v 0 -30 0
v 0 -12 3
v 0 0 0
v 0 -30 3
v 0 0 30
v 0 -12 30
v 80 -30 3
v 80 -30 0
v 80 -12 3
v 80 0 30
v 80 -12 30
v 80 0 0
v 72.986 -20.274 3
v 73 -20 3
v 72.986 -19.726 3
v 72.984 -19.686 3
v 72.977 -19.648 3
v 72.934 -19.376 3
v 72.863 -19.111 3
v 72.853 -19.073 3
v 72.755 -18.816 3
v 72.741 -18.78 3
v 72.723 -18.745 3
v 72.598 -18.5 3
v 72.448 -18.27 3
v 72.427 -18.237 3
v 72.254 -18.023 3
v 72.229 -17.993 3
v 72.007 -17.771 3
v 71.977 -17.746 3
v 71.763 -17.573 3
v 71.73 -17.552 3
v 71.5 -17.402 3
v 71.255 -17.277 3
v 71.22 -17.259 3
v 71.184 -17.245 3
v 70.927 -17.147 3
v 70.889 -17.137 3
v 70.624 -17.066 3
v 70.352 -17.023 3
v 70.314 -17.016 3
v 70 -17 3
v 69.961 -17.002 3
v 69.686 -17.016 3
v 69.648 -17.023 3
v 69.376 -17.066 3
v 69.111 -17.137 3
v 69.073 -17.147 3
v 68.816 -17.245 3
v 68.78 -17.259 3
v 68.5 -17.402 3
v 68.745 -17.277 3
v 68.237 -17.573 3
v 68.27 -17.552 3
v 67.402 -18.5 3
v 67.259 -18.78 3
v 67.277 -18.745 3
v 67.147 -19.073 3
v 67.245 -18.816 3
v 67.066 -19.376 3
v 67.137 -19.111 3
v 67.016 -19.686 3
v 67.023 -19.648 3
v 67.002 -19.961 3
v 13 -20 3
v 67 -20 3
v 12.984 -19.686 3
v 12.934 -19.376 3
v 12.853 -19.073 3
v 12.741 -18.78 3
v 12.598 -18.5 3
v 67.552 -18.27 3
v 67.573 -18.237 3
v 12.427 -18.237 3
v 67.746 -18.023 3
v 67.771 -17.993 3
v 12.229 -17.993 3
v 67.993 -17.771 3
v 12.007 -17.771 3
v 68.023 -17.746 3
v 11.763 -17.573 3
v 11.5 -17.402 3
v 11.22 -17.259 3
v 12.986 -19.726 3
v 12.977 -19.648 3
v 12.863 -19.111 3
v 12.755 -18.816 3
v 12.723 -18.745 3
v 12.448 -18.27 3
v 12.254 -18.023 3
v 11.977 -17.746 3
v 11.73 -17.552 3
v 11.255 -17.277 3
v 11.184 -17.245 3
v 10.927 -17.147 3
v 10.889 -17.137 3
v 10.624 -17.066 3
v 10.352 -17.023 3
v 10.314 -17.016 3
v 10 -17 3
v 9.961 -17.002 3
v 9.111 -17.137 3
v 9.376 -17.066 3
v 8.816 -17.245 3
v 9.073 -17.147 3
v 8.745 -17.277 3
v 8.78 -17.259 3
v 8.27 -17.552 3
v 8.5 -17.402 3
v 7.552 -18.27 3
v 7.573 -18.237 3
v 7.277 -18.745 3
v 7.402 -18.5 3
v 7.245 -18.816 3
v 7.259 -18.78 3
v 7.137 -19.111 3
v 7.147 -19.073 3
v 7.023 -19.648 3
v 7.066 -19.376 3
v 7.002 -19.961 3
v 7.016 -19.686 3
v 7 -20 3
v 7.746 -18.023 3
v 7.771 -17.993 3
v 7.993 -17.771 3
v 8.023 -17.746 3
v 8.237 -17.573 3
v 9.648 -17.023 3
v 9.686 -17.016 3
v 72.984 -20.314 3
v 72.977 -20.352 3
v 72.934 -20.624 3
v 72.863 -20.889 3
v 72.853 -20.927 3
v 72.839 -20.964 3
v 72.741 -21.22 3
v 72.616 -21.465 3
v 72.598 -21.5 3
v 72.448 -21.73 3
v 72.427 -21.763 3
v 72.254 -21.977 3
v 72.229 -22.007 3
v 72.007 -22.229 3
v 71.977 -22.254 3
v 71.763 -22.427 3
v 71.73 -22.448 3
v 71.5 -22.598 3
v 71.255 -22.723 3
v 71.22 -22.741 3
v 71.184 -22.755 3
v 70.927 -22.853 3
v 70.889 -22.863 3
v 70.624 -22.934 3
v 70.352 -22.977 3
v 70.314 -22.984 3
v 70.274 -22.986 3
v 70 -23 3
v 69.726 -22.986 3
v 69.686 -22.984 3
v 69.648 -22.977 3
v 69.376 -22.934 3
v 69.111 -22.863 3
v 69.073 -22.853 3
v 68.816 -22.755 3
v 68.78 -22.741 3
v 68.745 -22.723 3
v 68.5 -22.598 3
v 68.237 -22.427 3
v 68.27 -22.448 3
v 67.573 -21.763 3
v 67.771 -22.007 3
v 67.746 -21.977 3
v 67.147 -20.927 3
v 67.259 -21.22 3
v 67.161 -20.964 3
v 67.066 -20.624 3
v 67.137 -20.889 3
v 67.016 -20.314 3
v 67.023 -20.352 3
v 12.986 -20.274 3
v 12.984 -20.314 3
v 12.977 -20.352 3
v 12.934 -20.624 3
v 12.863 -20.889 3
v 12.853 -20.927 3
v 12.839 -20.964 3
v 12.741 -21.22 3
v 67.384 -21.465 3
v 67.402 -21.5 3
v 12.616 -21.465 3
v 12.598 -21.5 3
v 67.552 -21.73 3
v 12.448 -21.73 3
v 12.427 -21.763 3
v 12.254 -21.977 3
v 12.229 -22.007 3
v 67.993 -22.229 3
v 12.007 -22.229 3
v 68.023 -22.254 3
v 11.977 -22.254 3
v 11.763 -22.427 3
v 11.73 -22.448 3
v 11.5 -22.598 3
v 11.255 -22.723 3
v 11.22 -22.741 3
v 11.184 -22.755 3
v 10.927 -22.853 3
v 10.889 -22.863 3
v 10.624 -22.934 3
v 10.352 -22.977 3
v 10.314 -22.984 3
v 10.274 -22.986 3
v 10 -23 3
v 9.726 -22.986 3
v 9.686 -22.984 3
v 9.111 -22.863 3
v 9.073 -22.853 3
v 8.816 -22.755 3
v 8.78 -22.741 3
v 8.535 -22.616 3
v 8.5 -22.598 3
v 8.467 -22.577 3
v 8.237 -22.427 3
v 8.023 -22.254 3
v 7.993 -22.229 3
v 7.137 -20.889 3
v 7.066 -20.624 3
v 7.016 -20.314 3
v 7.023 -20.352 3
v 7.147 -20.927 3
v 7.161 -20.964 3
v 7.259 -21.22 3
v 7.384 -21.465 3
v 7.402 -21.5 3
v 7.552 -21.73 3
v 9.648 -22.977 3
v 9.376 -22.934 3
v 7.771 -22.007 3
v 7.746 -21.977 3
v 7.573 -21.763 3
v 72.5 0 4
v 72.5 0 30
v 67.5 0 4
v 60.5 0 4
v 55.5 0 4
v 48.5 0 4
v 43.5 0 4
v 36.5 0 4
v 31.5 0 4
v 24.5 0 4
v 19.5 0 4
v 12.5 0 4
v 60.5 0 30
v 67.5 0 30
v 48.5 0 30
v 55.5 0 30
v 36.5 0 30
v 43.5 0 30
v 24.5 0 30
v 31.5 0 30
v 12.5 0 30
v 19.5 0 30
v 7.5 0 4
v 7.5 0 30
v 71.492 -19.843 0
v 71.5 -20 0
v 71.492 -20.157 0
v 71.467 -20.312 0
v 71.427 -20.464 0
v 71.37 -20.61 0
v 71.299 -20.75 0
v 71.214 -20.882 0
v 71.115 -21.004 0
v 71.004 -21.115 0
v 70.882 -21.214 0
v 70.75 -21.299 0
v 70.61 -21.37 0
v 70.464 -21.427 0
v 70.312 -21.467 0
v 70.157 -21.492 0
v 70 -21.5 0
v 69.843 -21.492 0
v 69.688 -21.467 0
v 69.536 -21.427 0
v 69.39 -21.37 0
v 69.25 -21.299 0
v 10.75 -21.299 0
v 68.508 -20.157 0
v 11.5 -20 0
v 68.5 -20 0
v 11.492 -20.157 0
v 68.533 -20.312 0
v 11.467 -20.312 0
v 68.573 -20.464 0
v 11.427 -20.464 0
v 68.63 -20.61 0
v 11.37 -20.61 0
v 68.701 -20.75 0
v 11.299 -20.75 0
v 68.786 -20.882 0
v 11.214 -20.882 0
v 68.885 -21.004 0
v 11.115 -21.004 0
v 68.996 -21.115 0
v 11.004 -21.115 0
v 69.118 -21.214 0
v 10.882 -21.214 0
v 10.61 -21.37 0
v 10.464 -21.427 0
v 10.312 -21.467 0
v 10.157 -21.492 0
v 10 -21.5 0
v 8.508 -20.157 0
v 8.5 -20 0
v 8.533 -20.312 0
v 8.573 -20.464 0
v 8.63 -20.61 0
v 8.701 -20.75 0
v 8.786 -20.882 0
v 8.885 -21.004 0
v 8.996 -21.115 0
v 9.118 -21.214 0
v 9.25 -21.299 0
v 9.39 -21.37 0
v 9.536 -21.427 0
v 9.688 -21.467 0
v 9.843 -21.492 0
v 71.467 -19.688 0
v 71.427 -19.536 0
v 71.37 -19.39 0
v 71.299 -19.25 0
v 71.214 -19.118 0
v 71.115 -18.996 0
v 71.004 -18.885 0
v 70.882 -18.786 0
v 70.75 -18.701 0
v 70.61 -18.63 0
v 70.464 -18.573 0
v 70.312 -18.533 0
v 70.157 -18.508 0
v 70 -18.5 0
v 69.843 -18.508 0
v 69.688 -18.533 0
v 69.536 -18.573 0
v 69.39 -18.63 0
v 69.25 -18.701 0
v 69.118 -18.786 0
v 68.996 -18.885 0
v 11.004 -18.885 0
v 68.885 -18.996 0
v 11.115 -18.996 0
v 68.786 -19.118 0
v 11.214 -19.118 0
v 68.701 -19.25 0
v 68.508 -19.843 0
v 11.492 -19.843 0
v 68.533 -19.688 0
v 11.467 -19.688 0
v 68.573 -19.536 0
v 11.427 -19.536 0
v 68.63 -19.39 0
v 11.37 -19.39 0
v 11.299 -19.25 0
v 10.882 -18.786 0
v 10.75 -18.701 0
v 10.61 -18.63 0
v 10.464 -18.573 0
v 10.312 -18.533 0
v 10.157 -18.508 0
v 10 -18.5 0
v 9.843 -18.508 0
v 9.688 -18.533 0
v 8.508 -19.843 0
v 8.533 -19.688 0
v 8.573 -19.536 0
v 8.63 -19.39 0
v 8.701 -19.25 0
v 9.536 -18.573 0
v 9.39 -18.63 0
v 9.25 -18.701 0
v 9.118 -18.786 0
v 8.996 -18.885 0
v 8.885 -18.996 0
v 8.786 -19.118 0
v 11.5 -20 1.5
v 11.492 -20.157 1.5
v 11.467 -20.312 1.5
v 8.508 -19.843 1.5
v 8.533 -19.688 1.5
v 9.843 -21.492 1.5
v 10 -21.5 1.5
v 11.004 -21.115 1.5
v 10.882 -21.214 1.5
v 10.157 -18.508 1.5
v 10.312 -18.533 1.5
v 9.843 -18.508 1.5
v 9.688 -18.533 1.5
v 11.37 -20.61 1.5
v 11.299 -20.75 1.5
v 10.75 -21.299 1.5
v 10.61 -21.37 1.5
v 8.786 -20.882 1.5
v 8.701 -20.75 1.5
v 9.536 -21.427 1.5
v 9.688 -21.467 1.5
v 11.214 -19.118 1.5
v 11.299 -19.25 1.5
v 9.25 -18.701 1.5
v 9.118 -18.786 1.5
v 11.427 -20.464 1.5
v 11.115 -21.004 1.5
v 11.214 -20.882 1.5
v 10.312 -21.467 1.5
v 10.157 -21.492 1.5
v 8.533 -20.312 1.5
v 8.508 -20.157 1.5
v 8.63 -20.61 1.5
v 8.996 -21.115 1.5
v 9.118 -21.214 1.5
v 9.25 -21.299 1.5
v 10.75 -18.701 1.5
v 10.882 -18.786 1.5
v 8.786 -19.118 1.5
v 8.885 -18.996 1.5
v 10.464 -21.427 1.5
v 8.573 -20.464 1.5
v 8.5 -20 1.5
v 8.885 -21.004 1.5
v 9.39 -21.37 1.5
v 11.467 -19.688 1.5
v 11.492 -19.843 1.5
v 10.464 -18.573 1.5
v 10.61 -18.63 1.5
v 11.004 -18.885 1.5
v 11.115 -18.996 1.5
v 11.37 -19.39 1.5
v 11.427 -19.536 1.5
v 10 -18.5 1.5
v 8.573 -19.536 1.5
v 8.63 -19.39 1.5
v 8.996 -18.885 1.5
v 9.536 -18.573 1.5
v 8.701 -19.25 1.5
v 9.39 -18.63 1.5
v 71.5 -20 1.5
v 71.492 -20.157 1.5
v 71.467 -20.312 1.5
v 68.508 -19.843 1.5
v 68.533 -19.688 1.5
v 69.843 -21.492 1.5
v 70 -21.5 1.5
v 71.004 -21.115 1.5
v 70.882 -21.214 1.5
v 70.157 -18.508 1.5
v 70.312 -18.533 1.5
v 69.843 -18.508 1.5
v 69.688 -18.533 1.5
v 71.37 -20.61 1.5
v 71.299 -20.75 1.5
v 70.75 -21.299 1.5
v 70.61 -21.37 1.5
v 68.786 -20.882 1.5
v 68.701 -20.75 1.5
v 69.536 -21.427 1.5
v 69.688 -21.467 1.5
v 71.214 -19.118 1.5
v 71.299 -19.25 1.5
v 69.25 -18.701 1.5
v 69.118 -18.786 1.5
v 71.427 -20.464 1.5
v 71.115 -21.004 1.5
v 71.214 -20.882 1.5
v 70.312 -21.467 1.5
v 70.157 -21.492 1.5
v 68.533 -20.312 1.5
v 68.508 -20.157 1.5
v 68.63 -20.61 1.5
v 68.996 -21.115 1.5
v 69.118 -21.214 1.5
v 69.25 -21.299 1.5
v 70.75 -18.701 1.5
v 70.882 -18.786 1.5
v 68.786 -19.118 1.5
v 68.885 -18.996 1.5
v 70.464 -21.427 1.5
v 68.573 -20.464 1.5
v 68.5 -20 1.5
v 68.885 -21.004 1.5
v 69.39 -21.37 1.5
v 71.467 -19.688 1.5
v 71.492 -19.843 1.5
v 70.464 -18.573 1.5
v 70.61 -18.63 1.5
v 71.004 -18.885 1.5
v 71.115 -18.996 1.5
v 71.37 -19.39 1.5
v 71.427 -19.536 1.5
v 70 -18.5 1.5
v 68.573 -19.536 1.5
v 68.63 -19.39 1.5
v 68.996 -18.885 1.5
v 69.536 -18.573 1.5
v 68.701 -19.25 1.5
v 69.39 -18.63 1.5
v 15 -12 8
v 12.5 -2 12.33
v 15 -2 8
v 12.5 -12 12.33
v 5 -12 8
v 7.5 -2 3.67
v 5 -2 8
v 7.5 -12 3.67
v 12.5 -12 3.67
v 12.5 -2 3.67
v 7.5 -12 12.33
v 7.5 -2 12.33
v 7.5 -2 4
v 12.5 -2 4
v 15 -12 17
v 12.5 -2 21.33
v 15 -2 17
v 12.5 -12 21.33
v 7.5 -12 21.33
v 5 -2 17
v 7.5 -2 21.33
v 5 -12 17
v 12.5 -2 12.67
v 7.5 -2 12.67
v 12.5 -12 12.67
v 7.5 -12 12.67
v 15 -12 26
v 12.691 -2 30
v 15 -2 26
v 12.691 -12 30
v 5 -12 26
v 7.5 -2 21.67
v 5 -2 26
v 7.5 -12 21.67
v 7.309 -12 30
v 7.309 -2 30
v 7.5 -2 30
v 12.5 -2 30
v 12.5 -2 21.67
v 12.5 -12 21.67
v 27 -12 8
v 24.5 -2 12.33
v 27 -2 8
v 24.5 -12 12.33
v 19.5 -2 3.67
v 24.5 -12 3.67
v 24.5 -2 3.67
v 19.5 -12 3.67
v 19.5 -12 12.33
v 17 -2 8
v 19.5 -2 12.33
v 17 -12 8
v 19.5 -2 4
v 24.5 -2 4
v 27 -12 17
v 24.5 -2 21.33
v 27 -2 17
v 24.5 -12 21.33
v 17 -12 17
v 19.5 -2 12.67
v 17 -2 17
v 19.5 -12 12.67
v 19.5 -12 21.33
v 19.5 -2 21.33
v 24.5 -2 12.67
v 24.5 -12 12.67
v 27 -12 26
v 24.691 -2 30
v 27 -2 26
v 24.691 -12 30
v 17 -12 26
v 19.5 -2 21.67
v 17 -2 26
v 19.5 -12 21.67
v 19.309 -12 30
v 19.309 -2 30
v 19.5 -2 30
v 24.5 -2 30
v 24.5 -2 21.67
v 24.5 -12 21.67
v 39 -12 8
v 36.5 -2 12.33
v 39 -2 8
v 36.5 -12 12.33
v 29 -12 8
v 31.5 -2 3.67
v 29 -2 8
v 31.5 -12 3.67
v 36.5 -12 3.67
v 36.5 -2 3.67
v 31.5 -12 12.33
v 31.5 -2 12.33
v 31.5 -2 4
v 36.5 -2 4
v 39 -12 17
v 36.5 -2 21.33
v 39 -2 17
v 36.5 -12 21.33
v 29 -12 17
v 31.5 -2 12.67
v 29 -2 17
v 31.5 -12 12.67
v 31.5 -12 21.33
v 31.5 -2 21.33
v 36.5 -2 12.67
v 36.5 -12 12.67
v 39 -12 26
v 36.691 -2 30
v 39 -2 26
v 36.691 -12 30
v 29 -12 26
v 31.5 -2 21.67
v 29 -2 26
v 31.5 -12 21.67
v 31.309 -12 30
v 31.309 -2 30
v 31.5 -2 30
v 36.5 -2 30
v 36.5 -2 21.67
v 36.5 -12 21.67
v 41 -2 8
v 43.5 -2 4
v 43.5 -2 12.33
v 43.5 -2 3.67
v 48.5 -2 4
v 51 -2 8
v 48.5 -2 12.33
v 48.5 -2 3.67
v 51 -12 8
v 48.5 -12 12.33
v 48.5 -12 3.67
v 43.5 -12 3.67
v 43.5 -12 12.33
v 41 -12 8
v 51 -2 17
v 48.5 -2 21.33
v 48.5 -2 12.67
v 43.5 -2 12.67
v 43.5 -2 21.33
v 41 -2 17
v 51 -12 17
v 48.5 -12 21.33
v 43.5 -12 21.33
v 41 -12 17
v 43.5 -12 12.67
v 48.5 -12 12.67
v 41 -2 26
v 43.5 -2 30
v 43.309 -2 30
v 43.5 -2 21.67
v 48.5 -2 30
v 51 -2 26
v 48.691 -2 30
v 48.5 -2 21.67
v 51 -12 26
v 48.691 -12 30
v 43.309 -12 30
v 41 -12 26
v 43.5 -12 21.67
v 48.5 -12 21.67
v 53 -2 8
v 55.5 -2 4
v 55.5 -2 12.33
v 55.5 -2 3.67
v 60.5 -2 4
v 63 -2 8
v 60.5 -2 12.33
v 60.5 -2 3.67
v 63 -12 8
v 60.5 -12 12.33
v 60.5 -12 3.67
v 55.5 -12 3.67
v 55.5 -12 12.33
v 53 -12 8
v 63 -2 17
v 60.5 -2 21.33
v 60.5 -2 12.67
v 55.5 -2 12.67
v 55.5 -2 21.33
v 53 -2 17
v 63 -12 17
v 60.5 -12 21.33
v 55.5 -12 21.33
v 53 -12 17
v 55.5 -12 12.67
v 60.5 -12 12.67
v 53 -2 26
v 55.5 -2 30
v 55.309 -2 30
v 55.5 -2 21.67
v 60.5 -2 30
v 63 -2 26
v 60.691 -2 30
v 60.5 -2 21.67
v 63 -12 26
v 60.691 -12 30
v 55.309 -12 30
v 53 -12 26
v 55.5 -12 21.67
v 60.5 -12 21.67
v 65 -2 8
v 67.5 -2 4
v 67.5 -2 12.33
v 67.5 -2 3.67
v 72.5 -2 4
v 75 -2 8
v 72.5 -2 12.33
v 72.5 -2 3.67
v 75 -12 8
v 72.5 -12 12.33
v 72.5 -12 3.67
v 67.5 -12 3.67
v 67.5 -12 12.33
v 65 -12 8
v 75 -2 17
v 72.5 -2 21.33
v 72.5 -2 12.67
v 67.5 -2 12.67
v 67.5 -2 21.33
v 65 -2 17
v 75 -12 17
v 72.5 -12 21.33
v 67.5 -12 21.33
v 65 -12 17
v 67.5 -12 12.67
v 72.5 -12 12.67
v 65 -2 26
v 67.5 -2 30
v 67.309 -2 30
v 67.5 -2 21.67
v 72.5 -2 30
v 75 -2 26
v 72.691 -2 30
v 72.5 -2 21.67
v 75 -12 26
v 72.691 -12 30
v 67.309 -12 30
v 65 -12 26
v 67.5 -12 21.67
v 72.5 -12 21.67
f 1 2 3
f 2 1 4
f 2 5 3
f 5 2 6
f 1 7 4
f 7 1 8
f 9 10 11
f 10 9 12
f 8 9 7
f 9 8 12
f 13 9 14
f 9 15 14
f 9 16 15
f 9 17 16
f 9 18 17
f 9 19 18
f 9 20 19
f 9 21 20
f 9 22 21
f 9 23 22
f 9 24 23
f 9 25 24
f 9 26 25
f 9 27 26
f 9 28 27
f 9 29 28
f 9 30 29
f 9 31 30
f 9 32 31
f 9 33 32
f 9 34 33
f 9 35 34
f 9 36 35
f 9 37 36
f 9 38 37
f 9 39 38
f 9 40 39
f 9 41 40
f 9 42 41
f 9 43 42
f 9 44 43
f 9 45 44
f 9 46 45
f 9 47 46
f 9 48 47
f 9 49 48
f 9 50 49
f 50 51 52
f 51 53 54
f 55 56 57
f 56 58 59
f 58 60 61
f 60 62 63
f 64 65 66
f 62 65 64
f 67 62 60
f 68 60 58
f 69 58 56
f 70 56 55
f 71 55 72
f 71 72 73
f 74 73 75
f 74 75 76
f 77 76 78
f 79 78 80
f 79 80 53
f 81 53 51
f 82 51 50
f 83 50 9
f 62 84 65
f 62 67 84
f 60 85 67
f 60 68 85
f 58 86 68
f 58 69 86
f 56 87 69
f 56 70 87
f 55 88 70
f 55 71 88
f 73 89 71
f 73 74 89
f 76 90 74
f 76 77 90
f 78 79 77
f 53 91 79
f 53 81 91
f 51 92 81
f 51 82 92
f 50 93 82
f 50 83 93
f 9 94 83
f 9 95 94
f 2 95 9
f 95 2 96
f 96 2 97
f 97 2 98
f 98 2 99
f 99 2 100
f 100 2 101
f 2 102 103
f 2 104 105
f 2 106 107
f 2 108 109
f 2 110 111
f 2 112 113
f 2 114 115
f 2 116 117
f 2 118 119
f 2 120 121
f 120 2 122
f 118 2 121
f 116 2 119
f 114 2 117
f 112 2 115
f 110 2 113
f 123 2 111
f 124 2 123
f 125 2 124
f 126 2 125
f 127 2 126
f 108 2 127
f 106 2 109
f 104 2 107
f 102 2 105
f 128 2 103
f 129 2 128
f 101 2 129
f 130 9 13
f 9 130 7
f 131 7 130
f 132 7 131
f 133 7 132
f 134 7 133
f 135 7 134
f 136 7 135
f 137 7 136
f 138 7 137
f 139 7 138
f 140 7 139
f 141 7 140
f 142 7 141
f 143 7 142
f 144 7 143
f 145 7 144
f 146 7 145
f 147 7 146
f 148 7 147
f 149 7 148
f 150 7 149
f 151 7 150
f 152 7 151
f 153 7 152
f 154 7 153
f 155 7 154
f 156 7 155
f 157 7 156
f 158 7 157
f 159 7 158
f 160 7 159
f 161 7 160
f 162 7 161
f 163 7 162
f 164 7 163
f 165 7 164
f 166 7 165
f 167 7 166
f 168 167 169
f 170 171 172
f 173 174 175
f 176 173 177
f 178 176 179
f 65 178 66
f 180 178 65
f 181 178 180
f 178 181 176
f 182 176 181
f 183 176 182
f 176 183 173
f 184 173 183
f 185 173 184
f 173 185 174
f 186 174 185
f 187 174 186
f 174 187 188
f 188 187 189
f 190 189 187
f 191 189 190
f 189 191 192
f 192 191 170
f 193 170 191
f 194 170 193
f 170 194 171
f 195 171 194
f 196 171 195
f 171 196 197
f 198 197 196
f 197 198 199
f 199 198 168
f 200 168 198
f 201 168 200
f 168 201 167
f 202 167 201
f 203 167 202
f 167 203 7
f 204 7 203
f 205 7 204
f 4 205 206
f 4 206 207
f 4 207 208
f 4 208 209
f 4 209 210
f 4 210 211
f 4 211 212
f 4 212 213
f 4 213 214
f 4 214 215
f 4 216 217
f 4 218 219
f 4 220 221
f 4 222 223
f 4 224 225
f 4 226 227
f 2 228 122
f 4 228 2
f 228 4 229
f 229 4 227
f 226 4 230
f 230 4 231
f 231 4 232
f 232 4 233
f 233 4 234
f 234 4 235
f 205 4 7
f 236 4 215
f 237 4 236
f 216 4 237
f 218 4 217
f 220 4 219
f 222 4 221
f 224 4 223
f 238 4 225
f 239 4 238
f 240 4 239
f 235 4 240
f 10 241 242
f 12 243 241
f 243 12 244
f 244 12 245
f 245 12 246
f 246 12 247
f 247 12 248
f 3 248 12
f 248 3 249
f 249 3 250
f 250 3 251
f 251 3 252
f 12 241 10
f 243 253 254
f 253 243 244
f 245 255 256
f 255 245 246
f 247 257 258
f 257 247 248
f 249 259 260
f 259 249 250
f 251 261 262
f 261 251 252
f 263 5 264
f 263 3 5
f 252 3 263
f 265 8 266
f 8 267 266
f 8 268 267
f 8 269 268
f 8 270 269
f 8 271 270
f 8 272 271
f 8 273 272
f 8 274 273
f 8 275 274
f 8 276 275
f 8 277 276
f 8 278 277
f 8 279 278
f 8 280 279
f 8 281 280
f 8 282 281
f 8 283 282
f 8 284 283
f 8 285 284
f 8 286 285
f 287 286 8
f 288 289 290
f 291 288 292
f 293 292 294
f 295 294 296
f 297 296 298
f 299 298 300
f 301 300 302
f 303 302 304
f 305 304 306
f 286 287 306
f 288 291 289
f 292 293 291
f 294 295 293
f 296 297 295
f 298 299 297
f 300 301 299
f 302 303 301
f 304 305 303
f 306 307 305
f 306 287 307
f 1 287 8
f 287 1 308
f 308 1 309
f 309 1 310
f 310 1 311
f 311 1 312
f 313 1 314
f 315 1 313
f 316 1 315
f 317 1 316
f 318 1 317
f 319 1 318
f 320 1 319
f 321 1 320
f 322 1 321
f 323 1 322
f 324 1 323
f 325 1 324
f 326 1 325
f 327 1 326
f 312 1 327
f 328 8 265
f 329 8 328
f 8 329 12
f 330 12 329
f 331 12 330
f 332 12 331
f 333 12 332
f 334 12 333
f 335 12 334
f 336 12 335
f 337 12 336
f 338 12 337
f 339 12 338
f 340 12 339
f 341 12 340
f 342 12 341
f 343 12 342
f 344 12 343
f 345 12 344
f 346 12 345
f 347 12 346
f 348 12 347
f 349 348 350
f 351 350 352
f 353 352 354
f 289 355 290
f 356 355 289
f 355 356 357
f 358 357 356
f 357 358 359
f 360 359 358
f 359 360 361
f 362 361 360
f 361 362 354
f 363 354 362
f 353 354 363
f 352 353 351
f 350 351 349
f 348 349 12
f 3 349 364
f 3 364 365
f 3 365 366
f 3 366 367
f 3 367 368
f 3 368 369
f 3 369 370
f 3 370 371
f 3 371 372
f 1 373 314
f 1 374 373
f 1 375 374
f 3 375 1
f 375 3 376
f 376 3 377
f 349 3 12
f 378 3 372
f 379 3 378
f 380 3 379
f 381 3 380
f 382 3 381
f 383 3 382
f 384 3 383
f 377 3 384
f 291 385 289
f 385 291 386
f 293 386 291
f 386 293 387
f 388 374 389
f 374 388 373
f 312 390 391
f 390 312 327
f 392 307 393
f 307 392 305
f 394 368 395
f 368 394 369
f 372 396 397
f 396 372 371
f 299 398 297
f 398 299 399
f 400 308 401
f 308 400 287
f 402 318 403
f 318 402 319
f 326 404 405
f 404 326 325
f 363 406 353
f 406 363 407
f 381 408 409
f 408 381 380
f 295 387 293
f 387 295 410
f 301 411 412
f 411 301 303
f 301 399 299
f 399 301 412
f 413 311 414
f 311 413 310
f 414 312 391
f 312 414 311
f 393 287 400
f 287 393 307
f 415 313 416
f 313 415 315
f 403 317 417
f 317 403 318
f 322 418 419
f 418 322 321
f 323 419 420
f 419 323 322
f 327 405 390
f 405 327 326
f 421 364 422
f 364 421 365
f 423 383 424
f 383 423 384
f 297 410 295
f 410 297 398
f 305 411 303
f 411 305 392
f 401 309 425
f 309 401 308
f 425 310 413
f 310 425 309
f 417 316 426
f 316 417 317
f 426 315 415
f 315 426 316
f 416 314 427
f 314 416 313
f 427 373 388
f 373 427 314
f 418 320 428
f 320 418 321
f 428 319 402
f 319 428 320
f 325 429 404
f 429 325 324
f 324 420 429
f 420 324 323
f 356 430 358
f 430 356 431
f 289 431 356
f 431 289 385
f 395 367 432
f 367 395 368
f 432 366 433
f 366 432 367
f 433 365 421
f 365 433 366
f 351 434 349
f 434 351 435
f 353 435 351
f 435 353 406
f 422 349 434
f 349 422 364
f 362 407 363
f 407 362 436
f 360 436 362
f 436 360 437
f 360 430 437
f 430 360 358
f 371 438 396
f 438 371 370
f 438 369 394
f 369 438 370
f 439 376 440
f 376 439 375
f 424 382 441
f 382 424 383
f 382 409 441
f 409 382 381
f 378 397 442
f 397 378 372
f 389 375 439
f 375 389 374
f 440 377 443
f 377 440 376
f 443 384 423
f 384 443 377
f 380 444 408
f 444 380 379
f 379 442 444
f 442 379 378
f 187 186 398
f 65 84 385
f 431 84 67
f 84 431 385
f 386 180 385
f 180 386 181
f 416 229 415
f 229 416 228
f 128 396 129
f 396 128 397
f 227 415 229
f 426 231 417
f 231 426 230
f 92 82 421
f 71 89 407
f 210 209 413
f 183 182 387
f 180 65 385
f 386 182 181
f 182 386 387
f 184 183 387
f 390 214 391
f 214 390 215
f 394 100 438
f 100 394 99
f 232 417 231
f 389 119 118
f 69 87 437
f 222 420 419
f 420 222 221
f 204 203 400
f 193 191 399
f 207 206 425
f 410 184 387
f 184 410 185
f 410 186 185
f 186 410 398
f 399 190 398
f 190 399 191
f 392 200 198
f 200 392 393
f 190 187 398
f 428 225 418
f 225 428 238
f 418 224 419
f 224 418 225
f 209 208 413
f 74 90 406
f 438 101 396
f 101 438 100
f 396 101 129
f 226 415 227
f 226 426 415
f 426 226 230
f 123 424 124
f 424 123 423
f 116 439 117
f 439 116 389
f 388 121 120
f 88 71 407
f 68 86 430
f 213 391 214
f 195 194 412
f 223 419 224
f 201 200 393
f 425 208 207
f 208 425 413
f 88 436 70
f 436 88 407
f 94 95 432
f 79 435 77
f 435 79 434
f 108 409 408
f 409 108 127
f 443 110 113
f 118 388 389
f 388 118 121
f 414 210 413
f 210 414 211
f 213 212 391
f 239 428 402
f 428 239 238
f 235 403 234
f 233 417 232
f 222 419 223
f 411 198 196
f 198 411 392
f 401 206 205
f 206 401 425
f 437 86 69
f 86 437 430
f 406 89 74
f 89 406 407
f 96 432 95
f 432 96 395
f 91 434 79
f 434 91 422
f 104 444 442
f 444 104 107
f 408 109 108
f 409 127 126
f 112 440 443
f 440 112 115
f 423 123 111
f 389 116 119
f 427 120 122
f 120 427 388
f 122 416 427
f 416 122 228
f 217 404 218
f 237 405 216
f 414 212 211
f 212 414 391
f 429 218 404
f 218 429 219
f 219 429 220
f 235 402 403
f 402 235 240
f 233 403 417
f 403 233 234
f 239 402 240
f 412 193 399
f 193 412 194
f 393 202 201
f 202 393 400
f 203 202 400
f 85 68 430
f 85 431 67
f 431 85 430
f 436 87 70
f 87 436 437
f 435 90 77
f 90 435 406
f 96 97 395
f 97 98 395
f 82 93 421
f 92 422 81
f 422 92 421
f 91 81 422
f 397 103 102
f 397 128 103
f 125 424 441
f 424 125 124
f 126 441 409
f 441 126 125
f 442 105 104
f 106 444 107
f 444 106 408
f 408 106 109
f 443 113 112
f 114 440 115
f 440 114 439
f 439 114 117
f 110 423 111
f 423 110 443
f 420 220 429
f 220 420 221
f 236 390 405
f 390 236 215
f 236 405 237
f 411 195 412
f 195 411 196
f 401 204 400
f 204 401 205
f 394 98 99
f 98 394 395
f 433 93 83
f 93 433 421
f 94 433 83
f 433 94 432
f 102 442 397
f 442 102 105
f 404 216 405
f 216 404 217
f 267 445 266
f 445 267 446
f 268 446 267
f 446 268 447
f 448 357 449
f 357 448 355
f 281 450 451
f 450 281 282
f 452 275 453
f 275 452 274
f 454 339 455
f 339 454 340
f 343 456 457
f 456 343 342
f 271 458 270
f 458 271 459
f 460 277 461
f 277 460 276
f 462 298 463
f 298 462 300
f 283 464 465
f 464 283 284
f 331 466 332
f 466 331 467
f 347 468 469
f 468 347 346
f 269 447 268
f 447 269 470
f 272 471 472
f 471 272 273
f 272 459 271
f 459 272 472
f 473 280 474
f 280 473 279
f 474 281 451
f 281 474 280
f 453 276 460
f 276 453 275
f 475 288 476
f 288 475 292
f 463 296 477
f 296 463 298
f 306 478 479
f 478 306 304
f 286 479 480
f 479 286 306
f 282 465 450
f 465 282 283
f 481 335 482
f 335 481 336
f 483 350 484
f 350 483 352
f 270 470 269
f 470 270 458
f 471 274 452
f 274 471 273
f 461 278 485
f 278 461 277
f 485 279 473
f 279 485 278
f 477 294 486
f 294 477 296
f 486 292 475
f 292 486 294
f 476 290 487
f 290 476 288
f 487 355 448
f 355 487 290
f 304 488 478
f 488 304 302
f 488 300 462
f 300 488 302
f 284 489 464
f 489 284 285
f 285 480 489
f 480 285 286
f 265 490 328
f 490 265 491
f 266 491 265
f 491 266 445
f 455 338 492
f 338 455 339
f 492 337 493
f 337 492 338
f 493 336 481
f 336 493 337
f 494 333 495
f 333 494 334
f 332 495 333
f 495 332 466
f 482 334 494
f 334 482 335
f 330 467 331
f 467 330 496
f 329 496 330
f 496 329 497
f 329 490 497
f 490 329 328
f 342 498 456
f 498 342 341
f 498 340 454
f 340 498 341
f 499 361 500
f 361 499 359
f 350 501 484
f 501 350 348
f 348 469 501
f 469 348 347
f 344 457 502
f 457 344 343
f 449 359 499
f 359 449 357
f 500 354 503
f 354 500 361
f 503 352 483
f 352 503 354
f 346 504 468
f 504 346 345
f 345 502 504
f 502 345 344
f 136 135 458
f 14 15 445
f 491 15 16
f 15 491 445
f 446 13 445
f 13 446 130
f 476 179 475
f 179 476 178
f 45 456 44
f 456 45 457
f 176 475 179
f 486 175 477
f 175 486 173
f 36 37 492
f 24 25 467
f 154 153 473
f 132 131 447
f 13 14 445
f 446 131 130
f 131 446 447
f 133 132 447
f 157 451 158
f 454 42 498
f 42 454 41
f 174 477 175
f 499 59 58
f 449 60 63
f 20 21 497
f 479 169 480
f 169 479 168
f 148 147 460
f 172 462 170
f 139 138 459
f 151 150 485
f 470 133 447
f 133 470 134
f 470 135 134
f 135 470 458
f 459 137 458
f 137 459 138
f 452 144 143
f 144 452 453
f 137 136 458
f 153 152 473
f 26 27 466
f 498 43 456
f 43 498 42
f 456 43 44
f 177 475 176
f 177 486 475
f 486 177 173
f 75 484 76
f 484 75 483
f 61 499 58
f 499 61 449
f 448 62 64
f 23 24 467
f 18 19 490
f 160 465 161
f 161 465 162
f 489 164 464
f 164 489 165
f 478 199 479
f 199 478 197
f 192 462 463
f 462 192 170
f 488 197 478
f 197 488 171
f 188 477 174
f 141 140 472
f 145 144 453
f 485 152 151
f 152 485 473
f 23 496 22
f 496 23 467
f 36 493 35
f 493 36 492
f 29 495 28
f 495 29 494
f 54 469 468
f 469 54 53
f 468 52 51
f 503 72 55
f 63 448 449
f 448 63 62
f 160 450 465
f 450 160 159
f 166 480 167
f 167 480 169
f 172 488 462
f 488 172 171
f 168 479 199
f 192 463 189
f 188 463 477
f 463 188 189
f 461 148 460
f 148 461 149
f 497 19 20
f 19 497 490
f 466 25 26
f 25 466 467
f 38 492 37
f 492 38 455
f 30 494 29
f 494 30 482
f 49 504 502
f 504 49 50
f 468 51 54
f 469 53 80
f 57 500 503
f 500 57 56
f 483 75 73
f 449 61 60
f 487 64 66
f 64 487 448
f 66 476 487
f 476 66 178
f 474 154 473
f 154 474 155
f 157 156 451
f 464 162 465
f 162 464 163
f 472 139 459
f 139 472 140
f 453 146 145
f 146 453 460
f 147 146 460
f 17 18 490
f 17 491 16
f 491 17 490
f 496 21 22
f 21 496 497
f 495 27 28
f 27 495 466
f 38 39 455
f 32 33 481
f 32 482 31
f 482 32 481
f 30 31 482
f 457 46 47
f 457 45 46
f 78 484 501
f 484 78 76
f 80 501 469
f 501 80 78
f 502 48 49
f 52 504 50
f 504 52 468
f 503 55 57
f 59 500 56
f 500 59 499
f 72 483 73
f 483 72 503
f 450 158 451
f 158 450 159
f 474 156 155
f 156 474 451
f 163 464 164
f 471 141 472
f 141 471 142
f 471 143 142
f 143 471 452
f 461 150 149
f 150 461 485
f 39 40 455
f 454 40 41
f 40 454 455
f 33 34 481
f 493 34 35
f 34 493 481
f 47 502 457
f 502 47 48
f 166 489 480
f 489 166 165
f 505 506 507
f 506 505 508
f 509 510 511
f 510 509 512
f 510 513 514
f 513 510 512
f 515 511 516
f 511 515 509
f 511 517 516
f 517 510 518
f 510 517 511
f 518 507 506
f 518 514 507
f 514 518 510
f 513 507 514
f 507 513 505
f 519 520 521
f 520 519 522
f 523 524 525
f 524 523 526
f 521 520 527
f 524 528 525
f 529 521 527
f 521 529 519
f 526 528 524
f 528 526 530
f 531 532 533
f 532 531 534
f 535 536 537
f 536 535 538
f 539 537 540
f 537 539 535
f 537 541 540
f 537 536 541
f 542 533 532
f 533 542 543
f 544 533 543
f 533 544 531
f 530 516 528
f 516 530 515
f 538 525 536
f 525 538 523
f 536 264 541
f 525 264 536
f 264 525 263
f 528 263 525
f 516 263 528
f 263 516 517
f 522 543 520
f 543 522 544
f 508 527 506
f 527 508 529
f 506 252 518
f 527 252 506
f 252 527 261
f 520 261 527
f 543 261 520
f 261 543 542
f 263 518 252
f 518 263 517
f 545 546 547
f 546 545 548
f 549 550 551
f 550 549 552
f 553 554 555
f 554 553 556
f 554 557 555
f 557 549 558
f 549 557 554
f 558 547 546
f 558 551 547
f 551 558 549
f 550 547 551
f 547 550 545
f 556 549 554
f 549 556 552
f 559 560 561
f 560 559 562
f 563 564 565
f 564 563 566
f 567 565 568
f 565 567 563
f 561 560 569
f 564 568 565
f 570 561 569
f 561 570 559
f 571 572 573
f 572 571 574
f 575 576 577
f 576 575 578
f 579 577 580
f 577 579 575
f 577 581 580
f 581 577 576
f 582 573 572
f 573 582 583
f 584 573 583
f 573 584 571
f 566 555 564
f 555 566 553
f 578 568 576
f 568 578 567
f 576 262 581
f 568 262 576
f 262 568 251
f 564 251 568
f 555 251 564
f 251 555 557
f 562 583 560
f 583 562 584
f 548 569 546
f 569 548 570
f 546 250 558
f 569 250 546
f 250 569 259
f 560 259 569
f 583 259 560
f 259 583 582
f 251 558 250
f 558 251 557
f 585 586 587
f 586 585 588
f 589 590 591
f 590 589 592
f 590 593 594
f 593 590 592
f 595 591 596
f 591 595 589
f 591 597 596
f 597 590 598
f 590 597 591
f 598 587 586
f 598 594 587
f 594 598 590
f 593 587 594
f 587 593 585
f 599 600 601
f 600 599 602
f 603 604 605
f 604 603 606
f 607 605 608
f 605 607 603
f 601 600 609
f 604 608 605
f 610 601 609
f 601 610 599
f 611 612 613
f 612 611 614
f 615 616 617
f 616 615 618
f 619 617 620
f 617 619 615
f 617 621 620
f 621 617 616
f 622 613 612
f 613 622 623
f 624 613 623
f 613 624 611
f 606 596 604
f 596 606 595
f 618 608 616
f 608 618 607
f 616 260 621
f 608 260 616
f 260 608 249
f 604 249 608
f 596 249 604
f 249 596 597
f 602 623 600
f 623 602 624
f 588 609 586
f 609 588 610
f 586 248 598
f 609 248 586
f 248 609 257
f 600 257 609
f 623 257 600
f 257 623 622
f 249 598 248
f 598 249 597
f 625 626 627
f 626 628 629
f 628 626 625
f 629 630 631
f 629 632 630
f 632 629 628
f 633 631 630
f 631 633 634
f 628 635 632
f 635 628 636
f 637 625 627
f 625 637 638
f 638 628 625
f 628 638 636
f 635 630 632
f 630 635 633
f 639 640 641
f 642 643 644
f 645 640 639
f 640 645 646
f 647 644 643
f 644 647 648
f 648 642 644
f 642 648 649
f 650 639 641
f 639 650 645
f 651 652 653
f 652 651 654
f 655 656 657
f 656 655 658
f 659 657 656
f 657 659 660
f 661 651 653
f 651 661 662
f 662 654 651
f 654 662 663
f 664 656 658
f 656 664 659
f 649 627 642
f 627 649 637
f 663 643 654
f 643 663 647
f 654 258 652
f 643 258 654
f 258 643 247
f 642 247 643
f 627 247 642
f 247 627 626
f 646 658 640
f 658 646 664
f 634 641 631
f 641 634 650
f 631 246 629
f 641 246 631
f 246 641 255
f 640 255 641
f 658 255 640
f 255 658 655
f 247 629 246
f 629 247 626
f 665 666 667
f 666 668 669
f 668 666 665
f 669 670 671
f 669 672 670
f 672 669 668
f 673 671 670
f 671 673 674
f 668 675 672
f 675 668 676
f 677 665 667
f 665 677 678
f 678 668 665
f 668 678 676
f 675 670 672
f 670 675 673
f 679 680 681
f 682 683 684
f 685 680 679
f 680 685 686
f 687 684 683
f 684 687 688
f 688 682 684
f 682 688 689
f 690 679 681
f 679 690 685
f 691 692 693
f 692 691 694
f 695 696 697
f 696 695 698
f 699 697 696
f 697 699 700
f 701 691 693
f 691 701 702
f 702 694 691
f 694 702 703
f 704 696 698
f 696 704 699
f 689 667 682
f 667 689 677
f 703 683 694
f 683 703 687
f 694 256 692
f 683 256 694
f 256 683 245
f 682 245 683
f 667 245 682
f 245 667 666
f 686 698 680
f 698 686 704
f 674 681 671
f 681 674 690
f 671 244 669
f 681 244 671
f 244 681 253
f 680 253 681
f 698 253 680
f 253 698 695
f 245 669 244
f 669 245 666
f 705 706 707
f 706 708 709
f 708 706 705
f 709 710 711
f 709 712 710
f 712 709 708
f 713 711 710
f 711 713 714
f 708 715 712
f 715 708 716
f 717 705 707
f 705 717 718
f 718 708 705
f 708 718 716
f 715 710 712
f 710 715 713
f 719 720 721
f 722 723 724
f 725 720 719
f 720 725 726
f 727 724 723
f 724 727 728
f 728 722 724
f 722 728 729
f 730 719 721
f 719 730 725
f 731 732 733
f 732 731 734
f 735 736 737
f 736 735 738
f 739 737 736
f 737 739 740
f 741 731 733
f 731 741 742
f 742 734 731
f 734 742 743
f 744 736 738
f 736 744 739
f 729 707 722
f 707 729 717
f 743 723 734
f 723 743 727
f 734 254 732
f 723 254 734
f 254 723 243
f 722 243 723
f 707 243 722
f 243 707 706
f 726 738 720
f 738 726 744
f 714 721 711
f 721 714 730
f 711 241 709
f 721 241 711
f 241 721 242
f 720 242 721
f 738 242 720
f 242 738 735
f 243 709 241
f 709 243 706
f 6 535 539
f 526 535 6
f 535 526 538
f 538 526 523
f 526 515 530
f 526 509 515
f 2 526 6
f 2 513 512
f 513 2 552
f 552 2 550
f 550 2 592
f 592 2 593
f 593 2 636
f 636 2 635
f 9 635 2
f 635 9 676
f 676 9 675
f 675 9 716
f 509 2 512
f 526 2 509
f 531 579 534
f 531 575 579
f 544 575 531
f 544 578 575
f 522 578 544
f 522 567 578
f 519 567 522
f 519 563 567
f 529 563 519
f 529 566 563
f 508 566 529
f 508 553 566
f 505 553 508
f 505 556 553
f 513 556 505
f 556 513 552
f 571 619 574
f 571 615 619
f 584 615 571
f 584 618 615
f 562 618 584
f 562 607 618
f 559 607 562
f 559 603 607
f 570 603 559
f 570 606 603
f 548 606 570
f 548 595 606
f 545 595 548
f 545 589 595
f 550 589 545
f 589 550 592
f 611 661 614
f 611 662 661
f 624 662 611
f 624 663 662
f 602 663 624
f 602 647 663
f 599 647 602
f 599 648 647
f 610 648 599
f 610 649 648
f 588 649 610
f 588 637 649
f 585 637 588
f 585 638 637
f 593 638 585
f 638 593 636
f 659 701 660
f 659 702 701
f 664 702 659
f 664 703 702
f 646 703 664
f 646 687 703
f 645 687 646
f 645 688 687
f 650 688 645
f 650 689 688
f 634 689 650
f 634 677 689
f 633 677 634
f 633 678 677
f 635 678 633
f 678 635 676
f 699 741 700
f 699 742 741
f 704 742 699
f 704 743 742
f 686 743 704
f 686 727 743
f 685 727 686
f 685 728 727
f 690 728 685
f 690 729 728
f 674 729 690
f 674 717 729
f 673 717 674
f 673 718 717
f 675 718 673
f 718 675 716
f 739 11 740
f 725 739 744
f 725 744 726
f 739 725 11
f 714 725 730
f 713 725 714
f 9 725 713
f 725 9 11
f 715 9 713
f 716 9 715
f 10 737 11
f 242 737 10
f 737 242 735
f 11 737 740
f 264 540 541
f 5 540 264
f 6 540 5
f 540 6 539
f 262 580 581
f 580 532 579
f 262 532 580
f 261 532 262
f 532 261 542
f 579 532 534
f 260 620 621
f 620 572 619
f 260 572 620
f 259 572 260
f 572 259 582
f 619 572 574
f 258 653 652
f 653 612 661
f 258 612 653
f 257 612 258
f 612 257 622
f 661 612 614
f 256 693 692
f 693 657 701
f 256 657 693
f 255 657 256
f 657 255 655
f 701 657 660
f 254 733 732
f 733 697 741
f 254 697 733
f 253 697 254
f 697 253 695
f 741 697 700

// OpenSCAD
$fn = 60;

rotate([90, 0, 0]) {
 difference () {
   cube([80, 3, 30]);
   translate([10, 4, 20]) rotate([90, 0, 0]) cylinder(5, r=1.5);
   translate([10, 1.5, 20]) rotate([-90, 0, 0]) cylinder(2, r1=1.5, r2=3.5);
   translate([70, 4, 20]) rotate([90, 0, 0]) cylinder(5, r=1.5);
   translate([70, 1.5, 20]) rotate([-90, 0, 0]) cylinder(2, r1=1.5, r2=3.5);
 

 
   }
 
difference () {
  translate([0, 0, 0]) cube([80, 30, 12]);
  offset = 10;
  
  for (i = [0:5]) {
translate([offset + 12*i, 8, 2])  cylinder(11, r=5, $fn=6);
translate([offset + 12*i, 17, 2])  cylinder(11, r=5, $fn=6);
translate([offset + 12*i, 26, 2])  cylinder(11, r=5, $fn=6);
translate([offset-2.5 + 12*i, 4, -1]) cube([5, 27, 14]);
  }


}




}
